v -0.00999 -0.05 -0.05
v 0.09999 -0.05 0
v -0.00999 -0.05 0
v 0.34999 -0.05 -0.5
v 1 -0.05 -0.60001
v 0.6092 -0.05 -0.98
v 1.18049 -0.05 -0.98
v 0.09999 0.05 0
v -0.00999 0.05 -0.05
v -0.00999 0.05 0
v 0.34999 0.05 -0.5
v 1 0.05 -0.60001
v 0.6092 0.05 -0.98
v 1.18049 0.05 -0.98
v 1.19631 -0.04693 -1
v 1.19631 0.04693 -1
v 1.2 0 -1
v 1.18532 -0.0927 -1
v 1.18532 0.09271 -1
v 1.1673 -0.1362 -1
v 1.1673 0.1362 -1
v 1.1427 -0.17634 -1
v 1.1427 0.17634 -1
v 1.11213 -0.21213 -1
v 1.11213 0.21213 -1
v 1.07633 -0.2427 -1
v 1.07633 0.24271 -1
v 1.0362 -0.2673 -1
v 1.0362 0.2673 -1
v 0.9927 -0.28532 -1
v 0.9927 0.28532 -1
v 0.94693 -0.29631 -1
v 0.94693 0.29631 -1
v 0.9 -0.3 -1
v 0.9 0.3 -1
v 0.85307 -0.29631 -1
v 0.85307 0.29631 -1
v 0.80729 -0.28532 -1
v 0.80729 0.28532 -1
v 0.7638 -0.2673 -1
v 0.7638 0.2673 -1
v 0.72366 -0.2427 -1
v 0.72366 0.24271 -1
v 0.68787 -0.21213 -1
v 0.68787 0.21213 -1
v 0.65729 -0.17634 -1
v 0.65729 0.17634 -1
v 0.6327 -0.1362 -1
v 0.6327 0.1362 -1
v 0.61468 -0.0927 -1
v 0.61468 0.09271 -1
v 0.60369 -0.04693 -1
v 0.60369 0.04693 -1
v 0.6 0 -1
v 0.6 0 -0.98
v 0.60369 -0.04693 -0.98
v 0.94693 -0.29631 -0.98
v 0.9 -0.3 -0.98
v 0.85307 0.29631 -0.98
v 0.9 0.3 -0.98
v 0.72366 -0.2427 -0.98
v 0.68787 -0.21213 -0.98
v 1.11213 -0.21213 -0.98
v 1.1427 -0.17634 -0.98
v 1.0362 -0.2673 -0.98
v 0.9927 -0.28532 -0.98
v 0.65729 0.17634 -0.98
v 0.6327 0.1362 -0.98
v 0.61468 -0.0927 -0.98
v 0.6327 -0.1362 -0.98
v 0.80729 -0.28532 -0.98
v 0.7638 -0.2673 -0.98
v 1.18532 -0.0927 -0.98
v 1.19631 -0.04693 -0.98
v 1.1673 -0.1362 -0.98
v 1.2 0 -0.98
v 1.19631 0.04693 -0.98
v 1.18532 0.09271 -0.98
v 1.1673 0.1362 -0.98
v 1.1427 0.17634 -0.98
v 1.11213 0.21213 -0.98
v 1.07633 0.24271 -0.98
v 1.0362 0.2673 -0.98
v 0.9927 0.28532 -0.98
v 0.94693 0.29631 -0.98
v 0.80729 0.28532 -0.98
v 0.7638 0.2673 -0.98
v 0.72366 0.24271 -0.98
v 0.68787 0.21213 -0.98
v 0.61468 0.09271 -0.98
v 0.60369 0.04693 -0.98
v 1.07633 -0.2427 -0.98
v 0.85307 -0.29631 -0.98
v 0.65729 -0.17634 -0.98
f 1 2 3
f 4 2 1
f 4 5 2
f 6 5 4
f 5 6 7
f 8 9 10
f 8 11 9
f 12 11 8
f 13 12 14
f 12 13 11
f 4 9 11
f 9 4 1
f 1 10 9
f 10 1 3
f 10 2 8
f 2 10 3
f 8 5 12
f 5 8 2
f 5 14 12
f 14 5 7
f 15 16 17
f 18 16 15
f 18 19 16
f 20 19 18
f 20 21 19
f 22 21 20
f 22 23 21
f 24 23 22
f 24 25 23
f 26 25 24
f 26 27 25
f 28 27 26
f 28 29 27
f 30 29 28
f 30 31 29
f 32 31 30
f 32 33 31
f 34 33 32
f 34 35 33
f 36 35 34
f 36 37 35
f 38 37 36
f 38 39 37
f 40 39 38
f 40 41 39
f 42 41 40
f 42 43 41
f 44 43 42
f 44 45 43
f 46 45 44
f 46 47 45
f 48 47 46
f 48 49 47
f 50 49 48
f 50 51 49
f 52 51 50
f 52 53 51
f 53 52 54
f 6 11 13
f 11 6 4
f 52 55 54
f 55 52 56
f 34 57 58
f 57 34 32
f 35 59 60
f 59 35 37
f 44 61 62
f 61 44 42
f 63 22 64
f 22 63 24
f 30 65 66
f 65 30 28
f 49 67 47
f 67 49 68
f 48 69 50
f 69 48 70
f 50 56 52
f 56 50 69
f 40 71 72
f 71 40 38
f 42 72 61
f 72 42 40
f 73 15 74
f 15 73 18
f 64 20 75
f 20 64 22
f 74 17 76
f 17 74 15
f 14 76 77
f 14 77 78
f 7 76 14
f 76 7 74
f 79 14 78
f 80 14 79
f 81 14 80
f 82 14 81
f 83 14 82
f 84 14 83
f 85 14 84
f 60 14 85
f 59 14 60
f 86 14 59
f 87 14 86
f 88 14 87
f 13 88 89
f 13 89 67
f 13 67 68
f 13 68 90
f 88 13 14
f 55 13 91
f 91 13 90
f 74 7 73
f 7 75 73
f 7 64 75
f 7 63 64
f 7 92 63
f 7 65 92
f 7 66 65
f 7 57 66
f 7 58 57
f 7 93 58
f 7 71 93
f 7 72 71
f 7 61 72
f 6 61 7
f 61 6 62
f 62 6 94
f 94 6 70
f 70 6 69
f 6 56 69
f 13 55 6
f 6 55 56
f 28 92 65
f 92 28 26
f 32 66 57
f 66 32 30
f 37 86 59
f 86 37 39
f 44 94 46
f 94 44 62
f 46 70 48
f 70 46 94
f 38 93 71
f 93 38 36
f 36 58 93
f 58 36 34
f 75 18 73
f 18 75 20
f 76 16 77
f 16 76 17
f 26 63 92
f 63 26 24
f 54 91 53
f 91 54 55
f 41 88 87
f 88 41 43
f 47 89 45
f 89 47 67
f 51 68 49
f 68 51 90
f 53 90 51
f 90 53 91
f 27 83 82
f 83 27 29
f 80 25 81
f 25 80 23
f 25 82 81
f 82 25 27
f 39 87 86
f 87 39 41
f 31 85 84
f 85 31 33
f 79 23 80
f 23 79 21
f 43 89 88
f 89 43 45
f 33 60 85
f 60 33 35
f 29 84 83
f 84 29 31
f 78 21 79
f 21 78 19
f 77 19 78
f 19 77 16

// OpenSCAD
//----------------------------------------------
// Arch buttress Support Style
// Size must be 1mm height 
//----------------------------------------------
$fn=40;

rotate([0,0,180]) translate([-0.5,-0.5,-1.0]) 
union() {
    translate([0.5,0.55,0.0]) rotate([90, 0, 0]) {
			linear_extrude(height=0.1) {
				polygon(points=[[-0.62,0],[-1.19,0],[-1,0.4],[-0.1,1],[0.01,1],[0.01,0.95],[-0.35,0.5]], convexity=1);
			}
		}
    translate([-0.4,0.5,0.0]) cylinder ( h = 0.02, r = 0.3, center = false);
    // translate([-0.65,0.5,0.0]) cylinder ( h = 0.02, r = 0.12, center = false);
    // translate([-0.15,0.5,0.0]) cylinder ( h = 0.02, r = 0.12, center = false);
    // translate([-0.4,0.5,0.01]) cube(size = [0.50,0.24,0.02] , center = true);    
}
